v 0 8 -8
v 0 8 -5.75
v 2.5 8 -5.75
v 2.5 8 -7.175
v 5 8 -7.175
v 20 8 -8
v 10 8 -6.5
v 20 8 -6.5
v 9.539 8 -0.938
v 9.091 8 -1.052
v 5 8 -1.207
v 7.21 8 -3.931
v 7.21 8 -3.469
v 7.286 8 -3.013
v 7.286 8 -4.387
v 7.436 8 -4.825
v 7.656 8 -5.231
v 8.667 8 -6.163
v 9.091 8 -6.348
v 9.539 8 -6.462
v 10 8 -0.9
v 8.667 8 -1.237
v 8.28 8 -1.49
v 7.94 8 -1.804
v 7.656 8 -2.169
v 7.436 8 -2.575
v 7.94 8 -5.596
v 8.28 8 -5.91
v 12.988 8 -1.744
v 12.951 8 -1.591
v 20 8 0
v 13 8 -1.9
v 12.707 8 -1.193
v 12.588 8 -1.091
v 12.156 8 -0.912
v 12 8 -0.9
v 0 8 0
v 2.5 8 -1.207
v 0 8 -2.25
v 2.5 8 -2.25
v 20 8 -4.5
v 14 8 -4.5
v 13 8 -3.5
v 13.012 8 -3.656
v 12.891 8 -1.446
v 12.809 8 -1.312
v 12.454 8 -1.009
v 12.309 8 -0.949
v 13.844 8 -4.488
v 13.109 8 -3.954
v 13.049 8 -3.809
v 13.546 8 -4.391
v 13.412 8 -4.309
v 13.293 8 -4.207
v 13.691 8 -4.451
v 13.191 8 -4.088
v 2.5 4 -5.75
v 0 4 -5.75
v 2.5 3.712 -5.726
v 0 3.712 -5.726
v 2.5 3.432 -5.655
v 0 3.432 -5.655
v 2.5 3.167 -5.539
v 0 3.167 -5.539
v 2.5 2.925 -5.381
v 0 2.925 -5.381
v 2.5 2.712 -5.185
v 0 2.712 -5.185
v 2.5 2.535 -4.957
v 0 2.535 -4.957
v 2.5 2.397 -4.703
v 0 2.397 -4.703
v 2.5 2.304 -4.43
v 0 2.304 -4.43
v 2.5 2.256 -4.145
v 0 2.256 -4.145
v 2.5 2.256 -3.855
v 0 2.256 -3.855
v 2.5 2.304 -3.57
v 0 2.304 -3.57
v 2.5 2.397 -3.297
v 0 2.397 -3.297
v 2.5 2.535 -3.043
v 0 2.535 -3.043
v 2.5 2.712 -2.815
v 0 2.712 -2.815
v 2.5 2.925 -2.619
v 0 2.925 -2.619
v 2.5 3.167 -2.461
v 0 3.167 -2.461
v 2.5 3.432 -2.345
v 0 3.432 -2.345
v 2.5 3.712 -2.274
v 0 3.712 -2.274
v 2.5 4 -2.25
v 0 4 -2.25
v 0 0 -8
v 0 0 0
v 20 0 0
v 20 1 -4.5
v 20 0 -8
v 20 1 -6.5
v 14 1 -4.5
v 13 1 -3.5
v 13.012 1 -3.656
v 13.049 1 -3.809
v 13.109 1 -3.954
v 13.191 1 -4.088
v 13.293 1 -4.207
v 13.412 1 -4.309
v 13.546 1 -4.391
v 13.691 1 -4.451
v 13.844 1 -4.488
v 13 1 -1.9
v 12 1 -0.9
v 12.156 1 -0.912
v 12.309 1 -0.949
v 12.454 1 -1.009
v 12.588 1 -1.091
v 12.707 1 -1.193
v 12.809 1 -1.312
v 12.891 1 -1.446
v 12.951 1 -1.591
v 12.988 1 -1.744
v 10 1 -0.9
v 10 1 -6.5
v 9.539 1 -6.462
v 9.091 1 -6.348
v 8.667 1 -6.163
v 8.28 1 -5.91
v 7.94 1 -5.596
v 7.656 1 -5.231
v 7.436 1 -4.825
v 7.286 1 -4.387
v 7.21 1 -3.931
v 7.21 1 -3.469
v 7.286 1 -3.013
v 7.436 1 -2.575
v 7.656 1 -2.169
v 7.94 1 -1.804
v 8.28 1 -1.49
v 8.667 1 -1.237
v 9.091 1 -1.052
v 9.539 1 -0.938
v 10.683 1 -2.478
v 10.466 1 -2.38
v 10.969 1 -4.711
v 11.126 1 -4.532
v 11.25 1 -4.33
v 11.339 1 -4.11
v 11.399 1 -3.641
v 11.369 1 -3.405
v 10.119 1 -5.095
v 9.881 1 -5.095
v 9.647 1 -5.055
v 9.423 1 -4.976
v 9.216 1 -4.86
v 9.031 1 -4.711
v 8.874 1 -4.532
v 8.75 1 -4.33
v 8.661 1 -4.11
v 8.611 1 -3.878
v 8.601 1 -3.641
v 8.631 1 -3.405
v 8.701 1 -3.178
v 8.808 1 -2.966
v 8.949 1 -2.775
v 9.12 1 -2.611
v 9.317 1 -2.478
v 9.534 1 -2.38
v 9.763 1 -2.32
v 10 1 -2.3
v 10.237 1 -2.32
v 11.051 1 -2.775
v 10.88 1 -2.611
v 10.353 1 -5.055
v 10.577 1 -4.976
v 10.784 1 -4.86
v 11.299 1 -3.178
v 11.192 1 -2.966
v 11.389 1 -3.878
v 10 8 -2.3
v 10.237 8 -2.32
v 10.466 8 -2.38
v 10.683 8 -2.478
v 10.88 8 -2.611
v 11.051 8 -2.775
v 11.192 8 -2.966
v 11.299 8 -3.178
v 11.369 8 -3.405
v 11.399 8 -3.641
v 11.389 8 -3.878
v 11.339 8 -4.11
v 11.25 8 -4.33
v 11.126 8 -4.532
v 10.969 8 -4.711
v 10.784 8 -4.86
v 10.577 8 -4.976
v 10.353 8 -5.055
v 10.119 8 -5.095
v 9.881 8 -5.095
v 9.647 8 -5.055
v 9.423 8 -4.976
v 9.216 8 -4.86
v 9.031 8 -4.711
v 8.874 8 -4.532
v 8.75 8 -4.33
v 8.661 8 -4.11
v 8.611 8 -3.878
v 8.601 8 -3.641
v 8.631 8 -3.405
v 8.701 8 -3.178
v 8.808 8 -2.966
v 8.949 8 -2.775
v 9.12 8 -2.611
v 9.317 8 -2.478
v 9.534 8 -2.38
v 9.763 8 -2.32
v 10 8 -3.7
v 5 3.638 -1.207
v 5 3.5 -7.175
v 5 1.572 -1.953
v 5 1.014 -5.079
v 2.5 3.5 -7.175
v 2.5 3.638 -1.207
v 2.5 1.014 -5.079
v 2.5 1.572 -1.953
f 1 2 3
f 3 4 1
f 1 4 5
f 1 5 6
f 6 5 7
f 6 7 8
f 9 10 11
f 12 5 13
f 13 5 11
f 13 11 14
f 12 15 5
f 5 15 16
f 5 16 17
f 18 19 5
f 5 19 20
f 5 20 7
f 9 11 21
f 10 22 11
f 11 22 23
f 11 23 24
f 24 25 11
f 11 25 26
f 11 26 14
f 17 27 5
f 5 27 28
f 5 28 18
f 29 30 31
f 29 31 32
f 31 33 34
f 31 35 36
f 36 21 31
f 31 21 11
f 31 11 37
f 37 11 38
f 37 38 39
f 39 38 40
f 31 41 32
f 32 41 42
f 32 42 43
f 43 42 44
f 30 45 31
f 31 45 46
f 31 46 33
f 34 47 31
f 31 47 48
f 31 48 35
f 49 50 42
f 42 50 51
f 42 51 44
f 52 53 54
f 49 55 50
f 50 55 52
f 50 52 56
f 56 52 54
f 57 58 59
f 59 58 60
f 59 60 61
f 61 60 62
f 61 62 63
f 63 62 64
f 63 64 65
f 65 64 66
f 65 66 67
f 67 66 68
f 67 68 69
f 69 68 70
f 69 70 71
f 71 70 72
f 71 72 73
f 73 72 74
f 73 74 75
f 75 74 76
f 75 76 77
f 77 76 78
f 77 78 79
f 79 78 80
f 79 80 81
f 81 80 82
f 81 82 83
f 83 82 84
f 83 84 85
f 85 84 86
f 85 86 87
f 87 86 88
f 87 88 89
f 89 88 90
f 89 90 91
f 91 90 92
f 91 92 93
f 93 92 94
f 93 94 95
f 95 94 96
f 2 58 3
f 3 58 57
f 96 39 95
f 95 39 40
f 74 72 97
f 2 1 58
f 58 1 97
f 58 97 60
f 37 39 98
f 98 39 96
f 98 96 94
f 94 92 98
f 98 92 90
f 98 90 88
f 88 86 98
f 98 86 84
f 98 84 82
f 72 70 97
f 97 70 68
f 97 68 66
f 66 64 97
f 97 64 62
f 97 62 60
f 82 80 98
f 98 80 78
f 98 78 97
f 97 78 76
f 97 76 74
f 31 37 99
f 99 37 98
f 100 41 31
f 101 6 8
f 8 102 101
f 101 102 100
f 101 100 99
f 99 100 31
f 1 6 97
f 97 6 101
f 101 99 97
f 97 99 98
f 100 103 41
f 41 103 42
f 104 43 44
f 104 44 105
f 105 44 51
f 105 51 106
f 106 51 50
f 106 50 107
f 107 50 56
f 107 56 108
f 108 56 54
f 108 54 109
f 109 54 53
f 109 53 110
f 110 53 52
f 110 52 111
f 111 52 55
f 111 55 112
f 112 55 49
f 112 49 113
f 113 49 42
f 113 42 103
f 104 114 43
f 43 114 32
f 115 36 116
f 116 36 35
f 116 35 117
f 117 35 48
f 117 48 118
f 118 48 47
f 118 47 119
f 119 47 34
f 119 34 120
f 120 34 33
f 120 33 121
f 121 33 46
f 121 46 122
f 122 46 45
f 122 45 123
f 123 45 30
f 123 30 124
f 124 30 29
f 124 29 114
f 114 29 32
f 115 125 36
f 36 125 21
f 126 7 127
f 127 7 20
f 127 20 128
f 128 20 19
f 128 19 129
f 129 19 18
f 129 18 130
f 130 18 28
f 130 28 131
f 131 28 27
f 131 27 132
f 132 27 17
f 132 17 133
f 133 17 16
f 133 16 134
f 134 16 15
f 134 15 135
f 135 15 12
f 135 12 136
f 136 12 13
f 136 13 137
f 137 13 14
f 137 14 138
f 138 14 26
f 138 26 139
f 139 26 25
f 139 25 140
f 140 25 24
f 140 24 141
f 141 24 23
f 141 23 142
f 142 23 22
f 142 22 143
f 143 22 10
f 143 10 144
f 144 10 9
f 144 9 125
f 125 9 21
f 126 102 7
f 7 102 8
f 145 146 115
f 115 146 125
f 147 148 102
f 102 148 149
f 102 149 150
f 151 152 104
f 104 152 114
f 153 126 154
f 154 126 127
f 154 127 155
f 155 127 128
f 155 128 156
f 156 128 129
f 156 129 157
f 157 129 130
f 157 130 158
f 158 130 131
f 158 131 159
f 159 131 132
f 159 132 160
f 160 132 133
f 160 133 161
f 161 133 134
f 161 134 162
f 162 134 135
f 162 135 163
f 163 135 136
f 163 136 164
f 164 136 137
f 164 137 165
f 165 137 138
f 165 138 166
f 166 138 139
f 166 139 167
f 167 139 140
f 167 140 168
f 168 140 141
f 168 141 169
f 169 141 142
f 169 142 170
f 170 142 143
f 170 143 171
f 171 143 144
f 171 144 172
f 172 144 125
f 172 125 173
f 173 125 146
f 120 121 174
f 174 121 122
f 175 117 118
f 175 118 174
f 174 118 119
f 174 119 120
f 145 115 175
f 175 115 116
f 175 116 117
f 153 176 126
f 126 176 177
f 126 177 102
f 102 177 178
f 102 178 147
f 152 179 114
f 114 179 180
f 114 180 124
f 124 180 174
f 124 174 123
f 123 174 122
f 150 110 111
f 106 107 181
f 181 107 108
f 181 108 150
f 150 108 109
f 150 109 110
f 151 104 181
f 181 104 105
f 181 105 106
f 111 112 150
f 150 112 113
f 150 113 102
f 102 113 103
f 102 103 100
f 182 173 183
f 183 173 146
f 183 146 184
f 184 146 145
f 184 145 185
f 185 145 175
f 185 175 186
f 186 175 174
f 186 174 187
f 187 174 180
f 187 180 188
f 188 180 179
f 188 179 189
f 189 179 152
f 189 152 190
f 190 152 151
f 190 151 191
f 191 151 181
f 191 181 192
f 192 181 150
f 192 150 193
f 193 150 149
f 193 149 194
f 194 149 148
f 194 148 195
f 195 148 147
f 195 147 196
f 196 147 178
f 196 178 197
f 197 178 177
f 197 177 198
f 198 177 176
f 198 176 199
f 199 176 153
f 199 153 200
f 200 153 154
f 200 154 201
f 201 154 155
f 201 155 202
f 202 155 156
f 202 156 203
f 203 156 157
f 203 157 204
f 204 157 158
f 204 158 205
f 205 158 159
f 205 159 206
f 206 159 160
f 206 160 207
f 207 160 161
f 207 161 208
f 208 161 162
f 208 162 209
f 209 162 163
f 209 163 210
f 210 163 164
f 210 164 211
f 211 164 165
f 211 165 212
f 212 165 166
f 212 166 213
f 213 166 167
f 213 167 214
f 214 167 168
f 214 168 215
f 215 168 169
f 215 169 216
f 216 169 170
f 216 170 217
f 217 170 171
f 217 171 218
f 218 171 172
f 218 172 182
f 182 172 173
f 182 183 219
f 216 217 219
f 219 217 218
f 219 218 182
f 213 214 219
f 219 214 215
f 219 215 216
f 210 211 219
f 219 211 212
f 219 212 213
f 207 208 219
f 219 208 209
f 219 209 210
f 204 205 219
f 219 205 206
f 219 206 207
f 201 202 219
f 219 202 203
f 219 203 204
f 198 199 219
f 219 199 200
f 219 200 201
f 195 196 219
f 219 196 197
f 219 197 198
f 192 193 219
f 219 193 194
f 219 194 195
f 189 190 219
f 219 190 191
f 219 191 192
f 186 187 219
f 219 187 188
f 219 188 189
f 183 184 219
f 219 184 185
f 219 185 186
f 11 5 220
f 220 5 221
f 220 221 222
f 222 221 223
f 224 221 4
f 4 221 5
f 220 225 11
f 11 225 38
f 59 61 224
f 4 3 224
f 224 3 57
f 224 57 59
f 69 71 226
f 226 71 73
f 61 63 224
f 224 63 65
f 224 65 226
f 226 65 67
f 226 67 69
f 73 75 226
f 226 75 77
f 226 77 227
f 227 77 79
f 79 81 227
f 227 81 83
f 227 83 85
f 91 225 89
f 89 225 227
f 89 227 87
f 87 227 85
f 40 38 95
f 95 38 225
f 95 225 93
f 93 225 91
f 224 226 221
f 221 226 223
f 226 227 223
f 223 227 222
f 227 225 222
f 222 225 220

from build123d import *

# Parameters (mm, degrees)
SKETCH1_W           = 20
SKETCH1_H           = 8
BOSS_EXTRUDE1_DEPTH = 8
SKETCH2_R           = 1.4
CUT_EXTRUDE1_DEPTH  = 7
CUT_EXTRUDE2_DEPTH  = 5
CUT_EXTRUDE3_DEPTH  = 2.5


with BuildPart() as part:
    # Sketch1 → Boss-Extrude1 (new body)
    with BuildSketch(Plane(origin=(0, 0, 0), x_dir=(1, 0, 0), z_dir=(0, 1, 0))):
        with Locations((10, 4)):
            Rectangle(SKETCH1_W, SKETCH1_H)
    extrude(amount=BOSS_EXTRUDE1_DEPTH)

    # Sketch2 → Cut-Extrude1 (cut)
    with BuildSketch(Plane(origin=(0, 8, 0), x_dir=(1, 0, 0), z_dir=(0, 1, 0))):
        with BuildLine():
            Line((20, 6.5), (10, 6.5))
            ThreePointArc((10, 6.5), (7.2, 3.7), (10, 0.9))
            Line((10, 0.9), (12, 0.9))
            ThreePointArc((12, 0.9), (12.707106781, 1.192893219), (13, 1.9))
            Line((13, 1.9), (13, 3.5))
            ThreePointArc((13, 3.5), (13.292893219, 4.207106781), (14, 4.5))
            Line((14, 4.5), (20, 4.5))
            Line((20, 4.5), (20, 6.5))
        make_face()
        with Locations(Location((10, 3.7, 0), (0, 0, 270))):
            Circle(SKETCH2_R, mode=Mode.SUBTRACT)
    extrude(amount=-CUT_EXTRUDE1_DEPTH, mode=Mode.SUBTRACT)

    # Sketch4 → Cut-Extrude2 (cut)
    with BuildSketch(Plane.ZY):
        with BuildLine():
            Line((-5.75, 4), (-5.75, 8))
            Line((-5.75, 8), (-2.25, 8))
            Line((-2.25, 8), (-2.25, 4))
            ThreePointArc((-2.25, 4), (-4, 2.25), (-5.75, 4))
        make_face()
    extrude(amount=-CUT_EXTRUDE2_DEPTH, mode=Mode.SUBTRACT)

    # Sketch5 → Cut-Extrude3 (cut)
    with BuildSketch(Plane.ZY.offset(-5)):
        Polygon((-7.175426481, 3.5), (-7.175426481, 14.06619177), (-1.206769201, 14.06619177), (-1.206769201, 3.638089636), (-1.953153528, 1.572294735), (-5.079031196, 1.013526325), align=None)
    extrude(amount=CUT_EXTRUDE3_DEPTH, mode=Mode.SUBTRACT)


solid = part.part
